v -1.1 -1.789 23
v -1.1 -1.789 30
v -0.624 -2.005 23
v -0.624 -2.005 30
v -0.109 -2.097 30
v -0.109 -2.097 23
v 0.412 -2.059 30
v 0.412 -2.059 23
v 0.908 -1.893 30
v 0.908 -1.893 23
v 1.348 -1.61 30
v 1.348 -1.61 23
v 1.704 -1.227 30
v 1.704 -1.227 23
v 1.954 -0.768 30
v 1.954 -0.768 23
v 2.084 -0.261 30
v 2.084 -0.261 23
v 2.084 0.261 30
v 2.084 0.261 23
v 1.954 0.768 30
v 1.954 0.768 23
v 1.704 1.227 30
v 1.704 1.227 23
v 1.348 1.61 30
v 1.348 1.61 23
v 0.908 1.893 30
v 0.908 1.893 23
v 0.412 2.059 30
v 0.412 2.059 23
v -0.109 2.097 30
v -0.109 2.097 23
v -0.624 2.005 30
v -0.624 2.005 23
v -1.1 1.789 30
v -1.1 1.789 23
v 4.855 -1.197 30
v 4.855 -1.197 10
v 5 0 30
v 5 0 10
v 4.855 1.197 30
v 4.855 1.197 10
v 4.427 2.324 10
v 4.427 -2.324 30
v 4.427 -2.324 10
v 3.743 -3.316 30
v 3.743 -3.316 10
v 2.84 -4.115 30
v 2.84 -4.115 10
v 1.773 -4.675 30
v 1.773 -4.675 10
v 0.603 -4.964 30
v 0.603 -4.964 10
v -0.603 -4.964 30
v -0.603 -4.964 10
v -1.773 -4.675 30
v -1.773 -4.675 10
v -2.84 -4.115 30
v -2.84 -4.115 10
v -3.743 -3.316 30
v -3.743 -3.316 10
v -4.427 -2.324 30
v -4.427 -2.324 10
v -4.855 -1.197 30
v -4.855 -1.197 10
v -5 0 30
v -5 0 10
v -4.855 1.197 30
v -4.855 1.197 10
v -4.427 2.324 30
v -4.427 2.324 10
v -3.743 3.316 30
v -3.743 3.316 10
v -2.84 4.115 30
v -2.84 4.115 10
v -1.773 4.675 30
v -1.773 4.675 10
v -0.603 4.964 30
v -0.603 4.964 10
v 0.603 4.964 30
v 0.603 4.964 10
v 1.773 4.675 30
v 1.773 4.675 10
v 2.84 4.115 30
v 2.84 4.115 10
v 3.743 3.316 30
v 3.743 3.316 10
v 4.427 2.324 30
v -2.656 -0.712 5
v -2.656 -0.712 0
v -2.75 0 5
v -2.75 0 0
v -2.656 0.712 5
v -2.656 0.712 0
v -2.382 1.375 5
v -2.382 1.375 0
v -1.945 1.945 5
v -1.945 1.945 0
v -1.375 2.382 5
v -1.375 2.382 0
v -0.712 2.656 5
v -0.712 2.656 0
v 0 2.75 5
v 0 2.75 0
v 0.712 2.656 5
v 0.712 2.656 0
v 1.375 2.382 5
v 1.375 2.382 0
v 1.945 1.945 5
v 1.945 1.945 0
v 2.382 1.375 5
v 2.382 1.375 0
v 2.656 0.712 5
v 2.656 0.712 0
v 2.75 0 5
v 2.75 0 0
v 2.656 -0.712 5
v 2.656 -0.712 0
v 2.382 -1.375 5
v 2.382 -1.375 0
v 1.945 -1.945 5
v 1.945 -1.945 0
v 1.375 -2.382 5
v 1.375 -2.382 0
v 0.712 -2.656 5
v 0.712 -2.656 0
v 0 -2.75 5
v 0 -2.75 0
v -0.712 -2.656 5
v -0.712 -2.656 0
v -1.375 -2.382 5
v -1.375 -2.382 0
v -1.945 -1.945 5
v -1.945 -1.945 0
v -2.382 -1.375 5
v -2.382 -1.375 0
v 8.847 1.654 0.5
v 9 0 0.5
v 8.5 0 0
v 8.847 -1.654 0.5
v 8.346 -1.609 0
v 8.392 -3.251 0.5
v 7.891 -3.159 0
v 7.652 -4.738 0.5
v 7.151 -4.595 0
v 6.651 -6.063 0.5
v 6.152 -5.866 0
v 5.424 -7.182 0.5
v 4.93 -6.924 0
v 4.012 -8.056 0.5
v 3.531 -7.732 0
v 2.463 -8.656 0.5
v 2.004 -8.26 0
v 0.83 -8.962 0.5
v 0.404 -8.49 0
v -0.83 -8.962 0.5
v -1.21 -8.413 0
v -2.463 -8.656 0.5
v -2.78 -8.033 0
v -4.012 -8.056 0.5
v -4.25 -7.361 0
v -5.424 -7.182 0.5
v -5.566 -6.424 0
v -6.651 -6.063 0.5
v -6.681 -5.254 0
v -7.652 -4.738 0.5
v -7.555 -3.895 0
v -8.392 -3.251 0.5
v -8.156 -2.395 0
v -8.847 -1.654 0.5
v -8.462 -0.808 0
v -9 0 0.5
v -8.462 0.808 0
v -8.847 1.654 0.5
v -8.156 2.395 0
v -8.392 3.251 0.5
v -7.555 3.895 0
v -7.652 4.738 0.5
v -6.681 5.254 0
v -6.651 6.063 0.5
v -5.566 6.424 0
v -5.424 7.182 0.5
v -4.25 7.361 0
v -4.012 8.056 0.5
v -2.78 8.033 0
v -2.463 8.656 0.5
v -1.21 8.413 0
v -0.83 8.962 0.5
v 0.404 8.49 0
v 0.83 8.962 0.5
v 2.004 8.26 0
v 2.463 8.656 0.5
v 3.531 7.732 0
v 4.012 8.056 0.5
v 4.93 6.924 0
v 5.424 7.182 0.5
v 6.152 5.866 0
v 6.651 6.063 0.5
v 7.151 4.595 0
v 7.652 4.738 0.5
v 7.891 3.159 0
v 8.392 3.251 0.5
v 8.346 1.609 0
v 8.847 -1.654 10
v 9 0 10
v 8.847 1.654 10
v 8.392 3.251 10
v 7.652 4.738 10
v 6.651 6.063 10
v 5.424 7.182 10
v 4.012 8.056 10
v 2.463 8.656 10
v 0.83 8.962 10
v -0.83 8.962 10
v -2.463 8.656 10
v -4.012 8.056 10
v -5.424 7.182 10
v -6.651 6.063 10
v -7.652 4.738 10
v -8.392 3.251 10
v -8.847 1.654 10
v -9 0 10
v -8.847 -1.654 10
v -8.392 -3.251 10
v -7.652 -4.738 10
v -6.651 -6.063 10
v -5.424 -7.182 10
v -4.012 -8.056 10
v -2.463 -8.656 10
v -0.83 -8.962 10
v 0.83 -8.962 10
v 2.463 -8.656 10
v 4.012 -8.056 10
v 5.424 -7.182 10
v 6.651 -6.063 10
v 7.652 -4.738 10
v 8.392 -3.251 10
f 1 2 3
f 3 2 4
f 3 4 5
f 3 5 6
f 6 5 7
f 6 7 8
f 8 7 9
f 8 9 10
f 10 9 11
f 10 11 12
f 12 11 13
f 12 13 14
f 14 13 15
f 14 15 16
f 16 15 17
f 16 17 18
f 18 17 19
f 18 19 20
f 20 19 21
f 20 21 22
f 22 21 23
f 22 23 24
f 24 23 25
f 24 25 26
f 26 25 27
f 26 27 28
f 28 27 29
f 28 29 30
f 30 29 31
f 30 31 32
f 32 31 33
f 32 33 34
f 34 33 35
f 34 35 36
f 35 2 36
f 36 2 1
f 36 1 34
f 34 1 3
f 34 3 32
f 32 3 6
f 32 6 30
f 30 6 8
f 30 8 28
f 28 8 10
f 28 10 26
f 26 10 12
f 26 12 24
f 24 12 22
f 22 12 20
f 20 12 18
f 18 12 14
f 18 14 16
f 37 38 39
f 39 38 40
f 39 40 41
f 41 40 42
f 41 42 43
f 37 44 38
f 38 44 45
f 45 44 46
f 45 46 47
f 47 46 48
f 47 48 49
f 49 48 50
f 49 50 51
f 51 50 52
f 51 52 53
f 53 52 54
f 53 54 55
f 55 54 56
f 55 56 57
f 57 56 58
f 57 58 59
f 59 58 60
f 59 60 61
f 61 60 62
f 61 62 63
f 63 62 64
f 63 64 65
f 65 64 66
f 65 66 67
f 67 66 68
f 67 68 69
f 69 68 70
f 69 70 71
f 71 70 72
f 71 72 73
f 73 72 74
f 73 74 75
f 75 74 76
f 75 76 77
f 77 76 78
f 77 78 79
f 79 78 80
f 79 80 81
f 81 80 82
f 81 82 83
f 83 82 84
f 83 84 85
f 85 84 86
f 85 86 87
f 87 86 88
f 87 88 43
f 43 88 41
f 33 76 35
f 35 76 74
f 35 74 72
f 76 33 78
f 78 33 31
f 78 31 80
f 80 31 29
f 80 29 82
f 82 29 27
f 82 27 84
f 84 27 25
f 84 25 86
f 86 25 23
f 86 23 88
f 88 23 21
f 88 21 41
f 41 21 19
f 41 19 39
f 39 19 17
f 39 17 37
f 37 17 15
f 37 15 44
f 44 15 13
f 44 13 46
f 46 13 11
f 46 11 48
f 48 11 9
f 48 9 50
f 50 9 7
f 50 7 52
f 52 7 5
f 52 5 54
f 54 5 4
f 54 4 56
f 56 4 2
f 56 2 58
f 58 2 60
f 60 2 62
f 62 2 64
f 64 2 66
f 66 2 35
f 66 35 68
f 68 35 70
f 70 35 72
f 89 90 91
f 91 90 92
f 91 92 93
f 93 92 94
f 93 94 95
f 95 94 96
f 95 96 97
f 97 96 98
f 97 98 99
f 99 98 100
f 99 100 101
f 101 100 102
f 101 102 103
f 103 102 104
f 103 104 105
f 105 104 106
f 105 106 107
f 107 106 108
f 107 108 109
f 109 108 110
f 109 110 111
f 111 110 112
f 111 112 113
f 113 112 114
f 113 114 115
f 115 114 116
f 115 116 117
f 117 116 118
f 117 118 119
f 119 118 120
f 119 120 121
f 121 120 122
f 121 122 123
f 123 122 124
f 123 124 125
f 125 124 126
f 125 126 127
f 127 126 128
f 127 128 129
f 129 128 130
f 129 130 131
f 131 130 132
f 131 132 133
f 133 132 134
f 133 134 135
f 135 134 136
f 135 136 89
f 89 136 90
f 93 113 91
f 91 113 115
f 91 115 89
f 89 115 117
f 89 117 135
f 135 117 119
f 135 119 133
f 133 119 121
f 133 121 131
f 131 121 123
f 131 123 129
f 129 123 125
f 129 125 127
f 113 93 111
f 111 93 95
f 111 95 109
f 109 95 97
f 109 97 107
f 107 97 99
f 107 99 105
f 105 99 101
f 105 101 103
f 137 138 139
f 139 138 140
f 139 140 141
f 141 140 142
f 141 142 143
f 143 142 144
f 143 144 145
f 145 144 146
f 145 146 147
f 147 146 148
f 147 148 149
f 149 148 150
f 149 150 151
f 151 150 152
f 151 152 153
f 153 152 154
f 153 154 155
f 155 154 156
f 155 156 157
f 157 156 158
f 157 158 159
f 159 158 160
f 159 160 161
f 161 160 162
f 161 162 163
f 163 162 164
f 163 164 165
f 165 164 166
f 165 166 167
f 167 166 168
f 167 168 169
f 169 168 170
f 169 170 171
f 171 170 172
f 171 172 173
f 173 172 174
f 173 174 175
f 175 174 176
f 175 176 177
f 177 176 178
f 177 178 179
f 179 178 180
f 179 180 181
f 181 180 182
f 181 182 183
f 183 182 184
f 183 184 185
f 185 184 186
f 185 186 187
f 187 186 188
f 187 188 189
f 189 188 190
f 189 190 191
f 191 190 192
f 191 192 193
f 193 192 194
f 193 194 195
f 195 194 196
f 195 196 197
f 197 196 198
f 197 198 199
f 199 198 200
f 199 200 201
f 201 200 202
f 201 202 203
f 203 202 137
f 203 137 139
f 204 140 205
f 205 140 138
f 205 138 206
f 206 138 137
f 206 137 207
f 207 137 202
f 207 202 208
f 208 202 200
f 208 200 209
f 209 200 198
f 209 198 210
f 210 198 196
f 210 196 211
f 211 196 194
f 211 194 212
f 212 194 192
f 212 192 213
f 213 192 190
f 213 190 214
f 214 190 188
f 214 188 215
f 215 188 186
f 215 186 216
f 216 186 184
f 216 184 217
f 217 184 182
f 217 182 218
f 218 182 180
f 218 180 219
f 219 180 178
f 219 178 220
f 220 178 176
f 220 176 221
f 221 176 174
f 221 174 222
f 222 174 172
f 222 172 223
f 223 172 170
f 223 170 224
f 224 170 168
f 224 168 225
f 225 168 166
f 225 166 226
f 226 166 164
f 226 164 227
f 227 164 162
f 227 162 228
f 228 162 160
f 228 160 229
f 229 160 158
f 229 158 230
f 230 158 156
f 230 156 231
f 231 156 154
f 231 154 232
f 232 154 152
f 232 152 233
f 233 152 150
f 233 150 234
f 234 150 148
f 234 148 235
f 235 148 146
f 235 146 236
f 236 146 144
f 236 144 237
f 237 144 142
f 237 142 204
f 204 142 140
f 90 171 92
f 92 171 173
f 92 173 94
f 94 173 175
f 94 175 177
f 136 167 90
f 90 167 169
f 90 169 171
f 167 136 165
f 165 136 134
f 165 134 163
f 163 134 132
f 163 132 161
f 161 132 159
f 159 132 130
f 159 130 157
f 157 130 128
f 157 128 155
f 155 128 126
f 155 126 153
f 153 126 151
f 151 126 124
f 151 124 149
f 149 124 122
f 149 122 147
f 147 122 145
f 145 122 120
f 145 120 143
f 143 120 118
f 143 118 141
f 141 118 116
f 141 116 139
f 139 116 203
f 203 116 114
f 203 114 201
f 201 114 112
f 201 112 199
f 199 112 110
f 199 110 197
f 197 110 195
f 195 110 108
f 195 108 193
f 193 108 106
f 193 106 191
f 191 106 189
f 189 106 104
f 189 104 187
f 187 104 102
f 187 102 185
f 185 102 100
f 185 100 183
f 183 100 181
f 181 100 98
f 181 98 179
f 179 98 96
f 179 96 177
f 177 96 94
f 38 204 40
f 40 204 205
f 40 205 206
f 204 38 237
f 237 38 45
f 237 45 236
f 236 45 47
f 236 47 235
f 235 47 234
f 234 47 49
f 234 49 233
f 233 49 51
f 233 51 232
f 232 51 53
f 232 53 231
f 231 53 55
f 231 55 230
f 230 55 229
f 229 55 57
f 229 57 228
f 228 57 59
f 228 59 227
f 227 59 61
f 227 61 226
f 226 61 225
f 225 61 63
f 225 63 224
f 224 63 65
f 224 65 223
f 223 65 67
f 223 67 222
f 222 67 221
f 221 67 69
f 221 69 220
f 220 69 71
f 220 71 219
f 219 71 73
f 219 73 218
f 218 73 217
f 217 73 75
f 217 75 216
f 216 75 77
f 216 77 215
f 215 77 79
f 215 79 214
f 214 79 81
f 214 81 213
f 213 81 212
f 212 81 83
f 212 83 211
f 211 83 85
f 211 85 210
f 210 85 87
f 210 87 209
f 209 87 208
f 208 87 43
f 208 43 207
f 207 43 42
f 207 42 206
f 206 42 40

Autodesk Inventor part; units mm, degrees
ref_plane "YZ Plane" through (0, 0, 0) normal (1, 0, 0) x (0, 1, 0)
ref_plane "XZ Plane" through (0, 0, 0) normal (0, 1, 0) x (-1, 0, 0)
ref_plane "XY Plane" through (0, 0, 0) normal (0, 0, 1) x (1, 0, 0)
sketch "Sketch1" plane through (0, 0, 0) normal (0, 0, 1) x (1, 0, 0)
  circle A0 centre (0, 0) radius 9
  dimension "d0" = 18
extrude "Extrusion1" add sketch "Sketch1" along normal blind 10
chamfer "Chamfer1" distance 0.5 angle 45 1 edges at (-9, 0, 0)
sketch "Sketch2" plane through (0, 0, 0) normal (0, 0, -1) x (-1, 0, 0)
  circle A0 centre (0, 0) radius 2.75
  dimension "d6" = 5.5
extrude "Extrusion2" cut sketch "Sketch2" against normal blind 5
sketch "Sketch3" plane through (0, 0, 10) normal (0, 0, 1) x (1, 0, 0)
  circle A0 centre (0, 0) radius 5
  dimension "d9" = 10
extrude "Extrusion3" add sketch "Sketch3" along normal blind 20
sketch "Sketch4" plane through (0, 0, 30) normal (0, 0, 1) x (1, 0, 0)
  arc A0 (-1.1, -1.7889) -> (-1.1, 1.7889) centre (0, 0) ccw
  line L0 (-1.1, 1.7889) -> (-1.1, -1.7889)
  dimension "d12" = 4.2
  dimension "d13" = 1.1
extrude "Extrusion4" cut sketch "Sketch4" against normal blind 7
properties part number "MotorFlyWheel"
